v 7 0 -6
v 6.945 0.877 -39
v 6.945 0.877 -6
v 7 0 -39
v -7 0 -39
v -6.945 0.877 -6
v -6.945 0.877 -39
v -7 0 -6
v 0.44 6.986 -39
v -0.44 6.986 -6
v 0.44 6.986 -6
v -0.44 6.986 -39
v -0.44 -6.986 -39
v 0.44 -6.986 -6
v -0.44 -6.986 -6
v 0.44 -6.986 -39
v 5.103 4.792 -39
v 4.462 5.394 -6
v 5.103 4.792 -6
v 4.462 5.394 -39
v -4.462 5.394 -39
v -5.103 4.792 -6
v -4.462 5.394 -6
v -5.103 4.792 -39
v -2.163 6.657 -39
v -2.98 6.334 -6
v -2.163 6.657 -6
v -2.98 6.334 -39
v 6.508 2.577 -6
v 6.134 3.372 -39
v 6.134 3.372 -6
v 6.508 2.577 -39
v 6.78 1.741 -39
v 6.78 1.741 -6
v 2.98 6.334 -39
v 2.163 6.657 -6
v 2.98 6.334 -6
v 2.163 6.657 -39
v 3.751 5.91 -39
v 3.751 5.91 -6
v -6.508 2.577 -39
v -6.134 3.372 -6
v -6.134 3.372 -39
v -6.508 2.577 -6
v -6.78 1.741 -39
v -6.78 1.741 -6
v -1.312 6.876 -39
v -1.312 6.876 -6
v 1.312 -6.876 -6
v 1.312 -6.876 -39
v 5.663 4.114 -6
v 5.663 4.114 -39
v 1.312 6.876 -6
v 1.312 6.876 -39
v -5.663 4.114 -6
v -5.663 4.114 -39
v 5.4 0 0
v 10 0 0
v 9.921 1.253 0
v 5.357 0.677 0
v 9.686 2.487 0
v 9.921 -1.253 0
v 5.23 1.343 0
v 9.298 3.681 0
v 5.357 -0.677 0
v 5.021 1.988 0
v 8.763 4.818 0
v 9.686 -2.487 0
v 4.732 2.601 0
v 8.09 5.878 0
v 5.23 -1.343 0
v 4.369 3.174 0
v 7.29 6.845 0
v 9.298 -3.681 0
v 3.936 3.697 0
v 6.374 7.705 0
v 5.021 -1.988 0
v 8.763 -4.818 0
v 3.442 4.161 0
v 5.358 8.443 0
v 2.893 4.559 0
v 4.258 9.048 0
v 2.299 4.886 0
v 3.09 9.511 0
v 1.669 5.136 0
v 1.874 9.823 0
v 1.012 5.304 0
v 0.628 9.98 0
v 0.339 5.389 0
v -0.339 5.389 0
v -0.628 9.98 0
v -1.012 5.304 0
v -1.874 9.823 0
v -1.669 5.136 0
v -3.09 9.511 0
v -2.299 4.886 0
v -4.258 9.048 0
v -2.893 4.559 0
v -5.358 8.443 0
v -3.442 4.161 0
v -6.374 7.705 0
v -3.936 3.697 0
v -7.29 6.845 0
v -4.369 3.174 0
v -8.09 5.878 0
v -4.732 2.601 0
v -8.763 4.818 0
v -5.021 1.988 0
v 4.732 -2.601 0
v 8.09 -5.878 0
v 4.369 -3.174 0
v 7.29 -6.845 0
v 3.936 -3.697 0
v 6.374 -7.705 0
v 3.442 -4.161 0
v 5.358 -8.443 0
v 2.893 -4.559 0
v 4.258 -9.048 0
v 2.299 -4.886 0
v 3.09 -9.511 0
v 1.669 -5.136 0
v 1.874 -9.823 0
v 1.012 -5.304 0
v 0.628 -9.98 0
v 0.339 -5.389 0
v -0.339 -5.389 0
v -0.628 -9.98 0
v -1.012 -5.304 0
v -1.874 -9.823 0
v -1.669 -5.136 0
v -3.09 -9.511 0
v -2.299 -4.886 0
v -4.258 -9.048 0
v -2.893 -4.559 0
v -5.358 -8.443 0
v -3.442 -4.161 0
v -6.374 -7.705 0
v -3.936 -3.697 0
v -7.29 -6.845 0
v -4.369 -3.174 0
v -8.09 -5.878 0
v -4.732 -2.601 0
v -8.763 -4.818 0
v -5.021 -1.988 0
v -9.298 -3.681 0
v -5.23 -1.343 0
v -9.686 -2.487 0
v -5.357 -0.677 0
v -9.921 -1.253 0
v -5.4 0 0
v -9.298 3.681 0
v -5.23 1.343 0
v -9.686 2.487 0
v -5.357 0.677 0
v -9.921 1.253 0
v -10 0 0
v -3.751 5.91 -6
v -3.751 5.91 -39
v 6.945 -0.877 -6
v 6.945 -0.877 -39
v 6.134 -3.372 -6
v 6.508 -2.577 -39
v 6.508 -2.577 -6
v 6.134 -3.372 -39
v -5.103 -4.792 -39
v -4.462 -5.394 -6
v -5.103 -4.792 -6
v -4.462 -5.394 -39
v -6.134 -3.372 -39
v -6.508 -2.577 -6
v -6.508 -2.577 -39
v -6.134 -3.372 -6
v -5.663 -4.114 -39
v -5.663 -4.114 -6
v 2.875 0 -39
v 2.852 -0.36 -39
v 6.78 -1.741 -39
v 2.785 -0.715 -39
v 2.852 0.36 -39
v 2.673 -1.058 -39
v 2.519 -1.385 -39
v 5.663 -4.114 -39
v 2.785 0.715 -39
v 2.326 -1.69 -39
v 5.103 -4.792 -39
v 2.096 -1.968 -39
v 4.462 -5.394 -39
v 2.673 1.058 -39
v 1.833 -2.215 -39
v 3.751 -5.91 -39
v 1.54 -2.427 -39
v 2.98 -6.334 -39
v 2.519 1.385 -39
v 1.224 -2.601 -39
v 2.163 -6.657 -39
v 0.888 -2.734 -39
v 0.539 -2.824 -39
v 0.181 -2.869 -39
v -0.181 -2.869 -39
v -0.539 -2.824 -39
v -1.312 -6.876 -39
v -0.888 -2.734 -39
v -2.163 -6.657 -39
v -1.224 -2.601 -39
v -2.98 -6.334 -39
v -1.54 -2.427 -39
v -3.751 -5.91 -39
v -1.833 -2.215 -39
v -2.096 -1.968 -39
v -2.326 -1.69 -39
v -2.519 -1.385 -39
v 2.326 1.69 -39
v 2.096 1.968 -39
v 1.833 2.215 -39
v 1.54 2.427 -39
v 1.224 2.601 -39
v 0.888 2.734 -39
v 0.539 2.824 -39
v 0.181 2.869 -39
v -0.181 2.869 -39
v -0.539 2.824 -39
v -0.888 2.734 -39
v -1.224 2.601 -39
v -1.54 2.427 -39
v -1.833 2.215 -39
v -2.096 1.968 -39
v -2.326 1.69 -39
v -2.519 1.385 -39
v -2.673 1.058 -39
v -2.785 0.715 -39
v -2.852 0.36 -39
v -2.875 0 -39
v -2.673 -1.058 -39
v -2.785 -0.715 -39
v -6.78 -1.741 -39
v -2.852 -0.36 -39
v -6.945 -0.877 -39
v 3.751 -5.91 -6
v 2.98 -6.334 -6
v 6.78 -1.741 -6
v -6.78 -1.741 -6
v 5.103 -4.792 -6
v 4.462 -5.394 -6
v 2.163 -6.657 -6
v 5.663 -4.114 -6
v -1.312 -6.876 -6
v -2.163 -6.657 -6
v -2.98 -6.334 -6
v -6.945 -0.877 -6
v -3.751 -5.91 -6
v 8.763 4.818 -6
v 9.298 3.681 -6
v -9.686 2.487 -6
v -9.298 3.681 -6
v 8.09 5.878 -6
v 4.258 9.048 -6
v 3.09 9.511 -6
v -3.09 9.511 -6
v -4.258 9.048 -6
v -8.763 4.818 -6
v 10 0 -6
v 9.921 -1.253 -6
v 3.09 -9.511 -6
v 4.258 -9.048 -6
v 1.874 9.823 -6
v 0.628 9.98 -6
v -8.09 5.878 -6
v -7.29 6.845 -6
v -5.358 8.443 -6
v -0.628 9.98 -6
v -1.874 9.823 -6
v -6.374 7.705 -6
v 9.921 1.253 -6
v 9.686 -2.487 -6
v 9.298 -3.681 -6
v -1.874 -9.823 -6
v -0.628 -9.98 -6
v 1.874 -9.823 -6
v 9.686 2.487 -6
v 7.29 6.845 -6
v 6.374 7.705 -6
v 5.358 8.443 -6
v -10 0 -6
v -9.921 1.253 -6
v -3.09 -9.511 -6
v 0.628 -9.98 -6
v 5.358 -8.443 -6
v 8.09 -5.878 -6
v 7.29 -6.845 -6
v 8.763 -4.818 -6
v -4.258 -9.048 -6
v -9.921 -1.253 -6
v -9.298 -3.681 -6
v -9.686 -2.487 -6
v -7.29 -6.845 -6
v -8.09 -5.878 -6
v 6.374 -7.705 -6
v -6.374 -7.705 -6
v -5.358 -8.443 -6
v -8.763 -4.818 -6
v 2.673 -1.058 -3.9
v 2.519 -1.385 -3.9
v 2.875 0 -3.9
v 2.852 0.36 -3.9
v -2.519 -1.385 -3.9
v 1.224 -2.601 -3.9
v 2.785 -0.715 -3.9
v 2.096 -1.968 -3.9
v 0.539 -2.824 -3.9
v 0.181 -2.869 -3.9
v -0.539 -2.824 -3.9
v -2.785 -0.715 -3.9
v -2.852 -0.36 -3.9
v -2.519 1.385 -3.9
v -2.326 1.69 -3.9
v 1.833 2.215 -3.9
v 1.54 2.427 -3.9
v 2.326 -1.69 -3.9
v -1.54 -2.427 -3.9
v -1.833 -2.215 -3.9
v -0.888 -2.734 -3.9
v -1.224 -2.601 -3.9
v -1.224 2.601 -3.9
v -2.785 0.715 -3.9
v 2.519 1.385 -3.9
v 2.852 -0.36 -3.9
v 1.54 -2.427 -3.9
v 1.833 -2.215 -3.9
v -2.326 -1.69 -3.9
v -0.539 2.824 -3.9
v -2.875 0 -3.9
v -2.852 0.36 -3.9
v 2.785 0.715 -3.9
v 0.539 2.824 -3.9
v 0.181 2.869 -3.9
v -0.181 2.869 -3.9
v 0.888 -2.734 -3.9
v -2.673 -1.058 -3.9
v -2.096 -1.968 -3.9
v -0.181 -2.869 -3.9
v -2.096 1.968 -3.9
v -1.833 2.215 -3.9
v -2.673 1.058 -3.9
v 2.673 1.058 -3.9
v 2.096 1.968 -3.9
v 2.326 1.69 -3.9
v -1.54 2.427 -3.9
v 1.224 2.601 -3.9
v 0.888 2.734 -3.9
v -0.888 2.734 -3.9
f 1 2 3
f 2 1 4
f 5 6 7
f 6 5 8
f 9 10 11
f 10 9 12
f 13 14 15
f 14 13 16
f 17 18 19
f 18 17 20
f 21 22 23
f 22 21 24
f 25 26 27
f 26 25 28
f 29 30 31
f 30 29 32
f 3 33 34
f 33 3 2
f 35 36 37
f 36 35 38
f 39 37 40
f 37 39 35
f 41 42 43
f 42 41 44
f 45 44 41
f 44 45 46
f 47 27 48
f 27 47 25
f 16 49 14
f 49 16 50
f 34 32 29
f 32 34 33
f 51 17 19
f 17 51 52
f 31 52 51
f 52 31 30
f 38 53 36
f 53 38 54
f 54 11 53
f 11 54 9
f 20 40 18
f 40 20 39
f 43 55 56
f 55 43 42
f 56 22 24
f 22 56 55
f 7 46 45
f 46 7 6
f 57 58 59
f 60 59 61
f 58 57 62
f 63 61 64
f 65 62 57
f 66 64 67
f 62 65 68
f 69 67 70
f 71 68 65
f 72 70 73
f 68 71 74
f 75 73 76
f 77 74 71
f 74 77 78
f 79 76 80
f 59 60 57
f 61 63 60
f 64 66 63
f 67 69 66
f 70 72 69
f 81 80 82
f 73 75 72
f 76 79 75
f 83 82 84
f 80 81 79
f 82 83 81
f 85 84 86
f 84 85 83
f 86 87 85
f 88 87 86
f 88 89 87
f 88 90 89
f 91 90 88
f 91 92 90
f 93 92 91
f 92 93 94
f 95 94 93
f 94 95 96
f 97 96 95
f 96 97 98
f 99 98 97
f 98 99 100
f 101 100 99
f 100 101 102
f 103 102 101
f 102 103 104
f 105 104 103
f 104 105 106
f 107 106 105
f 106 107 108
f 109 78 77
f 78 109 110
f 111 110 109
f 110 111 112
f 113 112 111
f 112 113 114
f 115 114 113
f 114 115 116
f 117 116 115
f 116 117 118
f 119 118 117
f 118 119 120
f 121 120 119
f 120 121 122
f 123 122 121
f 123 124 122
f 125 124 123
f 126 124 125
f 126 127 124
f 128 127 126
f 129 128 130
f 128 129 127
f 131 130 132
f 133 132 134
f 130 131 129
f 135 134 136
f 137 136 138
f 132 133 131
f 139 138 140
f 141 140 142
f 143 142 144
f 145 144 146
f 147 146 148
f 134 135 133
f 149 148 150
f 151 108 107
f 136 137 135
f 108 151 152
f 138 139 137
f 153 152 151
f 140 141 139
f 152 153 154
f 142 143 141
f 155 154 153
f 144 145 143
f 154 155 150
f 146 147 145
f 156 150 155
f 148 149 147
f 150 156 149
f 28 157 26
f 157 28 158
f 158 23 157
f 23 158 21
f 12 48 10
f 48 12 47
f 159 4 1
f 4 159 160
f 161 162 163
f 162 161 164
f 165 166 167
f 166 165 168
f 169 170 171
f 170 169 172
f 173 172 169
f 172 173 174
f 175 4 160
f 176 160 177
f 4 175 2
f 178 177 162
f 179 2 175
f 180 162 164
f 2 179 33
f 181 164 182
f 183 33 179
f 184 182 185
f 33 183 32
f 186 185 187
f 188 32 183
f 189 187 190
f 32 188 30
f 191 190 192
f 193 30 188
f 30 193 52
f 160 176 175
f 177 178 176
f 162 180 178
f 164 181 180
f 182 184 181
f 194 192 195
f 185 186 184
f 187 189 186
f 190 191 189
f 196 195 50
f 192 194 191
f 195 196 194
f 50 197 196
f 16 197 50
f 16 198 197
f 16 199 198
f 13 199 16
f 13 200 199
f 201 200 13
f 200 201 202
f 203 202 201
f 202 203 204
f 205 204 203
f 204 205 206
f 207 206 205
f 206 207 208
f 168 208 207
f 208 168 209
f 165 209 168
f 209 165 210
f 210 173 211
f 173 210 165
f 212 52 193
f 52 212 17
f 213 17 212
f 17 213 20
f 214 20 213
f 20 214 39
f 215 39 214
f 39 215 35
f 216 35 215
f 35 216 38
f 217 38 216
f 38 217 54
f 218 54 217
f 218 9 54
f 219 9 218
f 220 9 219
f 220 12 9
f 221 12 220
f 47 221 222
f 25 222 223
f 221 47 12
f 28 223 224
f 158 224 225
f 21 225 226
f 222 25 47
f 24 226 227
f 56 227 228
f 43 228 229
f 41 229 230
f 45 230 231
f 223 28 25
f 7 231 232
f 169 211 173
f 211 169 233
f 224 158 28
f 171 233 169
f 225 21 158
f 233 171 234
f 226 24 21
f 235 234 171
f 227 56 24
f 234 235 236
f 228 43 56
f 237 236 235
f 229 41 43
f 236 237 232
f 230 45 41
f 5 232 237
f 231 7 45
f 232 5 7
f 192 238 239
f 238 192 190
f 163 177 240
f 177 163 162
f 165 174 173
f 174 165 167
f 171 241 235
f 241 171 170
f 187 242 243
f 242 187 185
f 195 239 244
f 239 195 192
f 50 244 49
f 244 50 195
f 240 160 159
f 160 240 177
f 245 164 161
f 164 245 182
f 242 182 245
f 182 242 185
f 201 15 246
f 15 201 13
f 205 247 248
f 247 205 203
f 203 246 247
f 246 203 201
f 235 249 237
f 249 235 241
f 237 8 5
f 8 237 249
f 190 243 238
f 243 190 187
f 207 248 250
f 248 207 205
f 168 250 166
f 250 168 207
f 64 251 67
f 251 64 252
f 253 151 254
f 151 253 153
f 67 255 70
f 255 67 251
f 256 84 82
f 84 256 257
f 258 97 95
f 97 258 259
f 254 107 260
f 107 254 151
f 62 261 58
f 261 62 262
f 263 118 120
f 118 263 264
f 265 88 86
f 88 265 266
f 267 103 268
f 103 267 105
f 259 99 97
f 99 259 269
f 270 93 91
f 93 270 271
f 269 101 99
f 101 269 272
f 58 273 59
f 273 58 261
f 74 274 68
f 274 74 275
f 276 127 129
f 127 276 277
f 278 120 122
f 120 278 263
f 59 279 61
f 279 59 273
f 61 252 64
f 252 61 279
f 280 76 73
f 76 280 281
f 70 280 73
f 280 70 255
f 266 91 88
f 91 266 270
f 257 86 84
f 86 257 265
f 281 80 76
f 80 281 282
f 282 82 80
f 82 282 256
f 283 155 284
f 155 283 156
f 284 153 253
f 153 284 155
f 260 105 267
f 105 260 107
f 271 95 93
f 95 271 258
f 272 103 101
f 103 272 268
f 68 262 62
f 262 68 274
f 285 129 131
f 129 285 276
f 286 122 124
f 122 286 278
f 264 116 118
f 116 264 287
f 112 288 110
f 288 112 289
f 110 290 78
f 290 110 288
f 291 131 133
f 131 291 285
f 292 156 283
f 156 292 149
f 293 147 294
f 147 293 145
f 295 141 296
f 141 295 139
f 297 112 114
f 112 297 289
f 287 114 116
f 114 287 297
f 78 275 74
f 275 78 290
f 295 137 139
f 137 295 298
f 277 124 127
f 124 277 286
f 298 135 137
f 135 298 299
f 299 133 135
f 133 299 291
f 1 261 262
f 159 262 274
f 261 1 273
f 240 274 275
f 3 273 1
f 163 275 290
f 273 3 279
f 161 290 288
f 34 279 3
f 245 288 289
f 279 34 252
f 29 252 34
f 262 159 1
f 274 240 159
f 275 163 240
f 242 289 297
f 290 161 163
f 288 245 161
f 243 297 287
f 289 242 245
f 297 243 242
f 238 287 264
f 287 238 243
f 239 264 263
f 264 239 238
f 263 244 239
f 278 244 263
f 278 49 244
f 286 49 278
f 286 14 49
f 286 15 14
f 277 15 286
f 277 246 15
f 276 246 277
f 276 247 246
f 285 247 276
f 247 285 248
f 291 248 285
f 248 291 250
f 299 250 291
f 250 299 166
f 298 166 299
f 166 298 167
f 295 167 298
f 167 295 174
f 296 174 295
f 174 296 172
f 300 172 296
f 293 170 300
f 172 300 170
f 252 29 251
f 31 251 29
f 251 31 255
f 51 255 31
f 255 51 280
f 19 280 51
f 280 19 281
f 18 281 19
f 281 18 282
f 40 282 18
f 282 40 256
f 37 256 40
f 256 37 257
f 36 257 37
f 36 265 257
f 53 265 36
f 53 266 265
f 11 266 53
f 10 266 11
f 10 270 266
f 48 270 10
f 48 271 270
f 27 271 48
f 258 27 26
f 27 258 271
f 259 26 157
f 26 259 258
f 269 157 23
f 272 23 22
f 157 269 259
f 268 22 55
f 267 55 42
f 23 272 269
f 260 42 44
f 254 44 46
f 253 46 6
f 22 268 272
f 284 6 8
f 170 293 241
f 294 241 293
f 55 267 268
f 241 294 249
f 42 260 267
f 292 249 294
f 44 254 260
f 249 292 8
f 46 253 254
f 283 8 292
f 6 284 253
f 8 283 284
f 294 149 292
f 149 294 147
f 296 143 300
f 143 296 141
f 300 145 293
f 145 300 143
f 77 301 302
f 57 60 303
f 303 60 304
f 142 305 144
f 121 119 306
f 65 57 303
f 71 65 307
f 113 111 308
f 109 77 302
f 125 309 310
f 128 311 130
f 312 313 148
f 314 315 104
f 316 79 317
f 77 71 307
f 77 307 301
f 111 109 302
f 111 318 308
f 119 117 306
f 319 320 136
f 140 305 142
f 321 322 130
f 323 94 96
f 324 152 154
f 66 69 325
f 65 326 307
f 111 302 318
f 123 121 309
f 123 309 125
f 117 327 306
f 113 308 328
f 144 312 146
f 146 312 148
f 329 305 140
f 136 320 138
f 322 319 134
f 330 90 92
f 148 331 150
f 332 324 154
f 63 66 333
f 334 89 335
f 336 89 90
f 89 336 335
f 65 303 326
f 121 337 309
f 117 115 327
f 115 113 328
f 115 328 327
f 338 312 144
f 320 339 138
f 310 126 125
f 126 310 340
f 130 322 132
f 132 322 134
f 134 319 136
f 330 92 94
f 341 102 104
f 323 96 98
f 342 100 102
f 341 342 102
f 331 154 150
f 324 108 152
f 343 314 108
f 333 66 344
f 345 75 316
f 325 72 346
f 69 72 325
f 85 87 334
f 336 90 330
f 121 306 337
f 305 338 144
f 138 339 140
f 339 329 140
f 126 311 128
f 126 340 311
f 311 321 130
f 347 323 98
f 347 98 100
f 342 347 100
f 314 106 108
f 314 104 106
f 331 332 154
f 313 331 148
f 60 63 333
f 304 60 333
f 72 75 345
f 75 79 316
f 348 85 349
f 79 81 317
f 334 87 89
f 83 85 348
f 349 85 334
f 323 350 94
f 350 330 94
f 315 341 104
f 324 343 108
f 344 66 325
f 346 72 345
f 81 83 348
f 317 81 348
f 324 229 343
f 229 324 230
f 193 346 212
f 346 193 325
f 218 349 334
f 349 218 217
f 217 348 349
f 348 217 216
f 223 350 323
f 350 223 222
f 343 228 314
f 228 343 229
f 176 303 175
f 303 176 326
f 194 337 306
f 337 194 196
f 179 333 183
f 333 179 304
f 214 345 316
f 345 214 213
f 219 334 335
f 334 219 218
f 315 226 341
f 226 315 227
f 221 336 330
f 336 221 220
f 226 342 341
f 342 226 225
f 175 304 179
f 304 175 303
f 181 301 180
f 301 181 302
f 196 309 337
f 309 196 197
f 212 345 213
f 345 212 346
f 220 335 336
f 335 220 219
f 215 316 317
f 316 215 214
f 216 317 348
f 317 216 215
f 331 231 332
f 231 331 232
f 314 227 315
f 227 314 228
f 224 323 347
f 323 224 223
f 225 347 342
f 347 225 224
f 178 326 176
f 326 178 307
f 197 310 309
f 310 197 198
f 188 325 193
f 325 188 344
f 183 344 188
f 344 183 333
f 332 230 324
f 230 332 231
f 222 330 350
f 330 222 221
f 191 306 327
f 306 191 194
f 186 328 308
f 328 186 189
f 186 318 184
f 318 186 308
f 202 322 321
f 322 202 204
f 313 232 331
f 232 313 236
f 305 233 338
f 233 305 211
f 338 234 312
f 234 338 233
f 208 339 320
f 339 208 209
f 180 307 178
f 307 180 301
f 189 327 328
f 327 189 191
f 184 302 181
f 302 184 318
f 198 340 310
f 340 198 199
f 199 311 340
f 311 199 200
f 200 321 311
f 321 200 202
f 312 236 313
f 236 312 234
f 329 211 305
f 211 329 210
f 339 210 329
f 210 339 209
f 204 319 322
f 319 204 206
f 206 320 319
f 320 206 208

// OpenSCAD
$fn = 50;


difference() {
	union() {
		translate(v = [0, 0, -39.0000000000]) {
			cylinder(h = 39, r = 7.0000000000);
		}
		translate(v = [0, 0, -6.0000000000]) {
			cylinder(h = 6, r = 10.0000000000);
		}
	}
	union() {
		translate(v = [0, 0, 0]) {
			rotate(a = [0, 0, 0]) {
				difference() {
					union() {
						#translate(v = [0, 0, -39.0000000000]) {
							cylinder(h = 39, r = 2.6000000000);
						}
						#translate(v = [0, 0, -3.9000000000]) {
							cylinder(h = 3.9000000000, r1 = 2.8750000000, r2 = 5.4000000000);
						}
						#translate(v = [0, 0, -39.0000000000]) {
							cylinder(h = 39, r = 2.8750000000);
						}
						#translate(v = [0, 0, -39.0000000000]) {
							cylinder(h = 39, r = 2.6000000000);
						}
					}
					union();
				}
			}
		}
	}
}
